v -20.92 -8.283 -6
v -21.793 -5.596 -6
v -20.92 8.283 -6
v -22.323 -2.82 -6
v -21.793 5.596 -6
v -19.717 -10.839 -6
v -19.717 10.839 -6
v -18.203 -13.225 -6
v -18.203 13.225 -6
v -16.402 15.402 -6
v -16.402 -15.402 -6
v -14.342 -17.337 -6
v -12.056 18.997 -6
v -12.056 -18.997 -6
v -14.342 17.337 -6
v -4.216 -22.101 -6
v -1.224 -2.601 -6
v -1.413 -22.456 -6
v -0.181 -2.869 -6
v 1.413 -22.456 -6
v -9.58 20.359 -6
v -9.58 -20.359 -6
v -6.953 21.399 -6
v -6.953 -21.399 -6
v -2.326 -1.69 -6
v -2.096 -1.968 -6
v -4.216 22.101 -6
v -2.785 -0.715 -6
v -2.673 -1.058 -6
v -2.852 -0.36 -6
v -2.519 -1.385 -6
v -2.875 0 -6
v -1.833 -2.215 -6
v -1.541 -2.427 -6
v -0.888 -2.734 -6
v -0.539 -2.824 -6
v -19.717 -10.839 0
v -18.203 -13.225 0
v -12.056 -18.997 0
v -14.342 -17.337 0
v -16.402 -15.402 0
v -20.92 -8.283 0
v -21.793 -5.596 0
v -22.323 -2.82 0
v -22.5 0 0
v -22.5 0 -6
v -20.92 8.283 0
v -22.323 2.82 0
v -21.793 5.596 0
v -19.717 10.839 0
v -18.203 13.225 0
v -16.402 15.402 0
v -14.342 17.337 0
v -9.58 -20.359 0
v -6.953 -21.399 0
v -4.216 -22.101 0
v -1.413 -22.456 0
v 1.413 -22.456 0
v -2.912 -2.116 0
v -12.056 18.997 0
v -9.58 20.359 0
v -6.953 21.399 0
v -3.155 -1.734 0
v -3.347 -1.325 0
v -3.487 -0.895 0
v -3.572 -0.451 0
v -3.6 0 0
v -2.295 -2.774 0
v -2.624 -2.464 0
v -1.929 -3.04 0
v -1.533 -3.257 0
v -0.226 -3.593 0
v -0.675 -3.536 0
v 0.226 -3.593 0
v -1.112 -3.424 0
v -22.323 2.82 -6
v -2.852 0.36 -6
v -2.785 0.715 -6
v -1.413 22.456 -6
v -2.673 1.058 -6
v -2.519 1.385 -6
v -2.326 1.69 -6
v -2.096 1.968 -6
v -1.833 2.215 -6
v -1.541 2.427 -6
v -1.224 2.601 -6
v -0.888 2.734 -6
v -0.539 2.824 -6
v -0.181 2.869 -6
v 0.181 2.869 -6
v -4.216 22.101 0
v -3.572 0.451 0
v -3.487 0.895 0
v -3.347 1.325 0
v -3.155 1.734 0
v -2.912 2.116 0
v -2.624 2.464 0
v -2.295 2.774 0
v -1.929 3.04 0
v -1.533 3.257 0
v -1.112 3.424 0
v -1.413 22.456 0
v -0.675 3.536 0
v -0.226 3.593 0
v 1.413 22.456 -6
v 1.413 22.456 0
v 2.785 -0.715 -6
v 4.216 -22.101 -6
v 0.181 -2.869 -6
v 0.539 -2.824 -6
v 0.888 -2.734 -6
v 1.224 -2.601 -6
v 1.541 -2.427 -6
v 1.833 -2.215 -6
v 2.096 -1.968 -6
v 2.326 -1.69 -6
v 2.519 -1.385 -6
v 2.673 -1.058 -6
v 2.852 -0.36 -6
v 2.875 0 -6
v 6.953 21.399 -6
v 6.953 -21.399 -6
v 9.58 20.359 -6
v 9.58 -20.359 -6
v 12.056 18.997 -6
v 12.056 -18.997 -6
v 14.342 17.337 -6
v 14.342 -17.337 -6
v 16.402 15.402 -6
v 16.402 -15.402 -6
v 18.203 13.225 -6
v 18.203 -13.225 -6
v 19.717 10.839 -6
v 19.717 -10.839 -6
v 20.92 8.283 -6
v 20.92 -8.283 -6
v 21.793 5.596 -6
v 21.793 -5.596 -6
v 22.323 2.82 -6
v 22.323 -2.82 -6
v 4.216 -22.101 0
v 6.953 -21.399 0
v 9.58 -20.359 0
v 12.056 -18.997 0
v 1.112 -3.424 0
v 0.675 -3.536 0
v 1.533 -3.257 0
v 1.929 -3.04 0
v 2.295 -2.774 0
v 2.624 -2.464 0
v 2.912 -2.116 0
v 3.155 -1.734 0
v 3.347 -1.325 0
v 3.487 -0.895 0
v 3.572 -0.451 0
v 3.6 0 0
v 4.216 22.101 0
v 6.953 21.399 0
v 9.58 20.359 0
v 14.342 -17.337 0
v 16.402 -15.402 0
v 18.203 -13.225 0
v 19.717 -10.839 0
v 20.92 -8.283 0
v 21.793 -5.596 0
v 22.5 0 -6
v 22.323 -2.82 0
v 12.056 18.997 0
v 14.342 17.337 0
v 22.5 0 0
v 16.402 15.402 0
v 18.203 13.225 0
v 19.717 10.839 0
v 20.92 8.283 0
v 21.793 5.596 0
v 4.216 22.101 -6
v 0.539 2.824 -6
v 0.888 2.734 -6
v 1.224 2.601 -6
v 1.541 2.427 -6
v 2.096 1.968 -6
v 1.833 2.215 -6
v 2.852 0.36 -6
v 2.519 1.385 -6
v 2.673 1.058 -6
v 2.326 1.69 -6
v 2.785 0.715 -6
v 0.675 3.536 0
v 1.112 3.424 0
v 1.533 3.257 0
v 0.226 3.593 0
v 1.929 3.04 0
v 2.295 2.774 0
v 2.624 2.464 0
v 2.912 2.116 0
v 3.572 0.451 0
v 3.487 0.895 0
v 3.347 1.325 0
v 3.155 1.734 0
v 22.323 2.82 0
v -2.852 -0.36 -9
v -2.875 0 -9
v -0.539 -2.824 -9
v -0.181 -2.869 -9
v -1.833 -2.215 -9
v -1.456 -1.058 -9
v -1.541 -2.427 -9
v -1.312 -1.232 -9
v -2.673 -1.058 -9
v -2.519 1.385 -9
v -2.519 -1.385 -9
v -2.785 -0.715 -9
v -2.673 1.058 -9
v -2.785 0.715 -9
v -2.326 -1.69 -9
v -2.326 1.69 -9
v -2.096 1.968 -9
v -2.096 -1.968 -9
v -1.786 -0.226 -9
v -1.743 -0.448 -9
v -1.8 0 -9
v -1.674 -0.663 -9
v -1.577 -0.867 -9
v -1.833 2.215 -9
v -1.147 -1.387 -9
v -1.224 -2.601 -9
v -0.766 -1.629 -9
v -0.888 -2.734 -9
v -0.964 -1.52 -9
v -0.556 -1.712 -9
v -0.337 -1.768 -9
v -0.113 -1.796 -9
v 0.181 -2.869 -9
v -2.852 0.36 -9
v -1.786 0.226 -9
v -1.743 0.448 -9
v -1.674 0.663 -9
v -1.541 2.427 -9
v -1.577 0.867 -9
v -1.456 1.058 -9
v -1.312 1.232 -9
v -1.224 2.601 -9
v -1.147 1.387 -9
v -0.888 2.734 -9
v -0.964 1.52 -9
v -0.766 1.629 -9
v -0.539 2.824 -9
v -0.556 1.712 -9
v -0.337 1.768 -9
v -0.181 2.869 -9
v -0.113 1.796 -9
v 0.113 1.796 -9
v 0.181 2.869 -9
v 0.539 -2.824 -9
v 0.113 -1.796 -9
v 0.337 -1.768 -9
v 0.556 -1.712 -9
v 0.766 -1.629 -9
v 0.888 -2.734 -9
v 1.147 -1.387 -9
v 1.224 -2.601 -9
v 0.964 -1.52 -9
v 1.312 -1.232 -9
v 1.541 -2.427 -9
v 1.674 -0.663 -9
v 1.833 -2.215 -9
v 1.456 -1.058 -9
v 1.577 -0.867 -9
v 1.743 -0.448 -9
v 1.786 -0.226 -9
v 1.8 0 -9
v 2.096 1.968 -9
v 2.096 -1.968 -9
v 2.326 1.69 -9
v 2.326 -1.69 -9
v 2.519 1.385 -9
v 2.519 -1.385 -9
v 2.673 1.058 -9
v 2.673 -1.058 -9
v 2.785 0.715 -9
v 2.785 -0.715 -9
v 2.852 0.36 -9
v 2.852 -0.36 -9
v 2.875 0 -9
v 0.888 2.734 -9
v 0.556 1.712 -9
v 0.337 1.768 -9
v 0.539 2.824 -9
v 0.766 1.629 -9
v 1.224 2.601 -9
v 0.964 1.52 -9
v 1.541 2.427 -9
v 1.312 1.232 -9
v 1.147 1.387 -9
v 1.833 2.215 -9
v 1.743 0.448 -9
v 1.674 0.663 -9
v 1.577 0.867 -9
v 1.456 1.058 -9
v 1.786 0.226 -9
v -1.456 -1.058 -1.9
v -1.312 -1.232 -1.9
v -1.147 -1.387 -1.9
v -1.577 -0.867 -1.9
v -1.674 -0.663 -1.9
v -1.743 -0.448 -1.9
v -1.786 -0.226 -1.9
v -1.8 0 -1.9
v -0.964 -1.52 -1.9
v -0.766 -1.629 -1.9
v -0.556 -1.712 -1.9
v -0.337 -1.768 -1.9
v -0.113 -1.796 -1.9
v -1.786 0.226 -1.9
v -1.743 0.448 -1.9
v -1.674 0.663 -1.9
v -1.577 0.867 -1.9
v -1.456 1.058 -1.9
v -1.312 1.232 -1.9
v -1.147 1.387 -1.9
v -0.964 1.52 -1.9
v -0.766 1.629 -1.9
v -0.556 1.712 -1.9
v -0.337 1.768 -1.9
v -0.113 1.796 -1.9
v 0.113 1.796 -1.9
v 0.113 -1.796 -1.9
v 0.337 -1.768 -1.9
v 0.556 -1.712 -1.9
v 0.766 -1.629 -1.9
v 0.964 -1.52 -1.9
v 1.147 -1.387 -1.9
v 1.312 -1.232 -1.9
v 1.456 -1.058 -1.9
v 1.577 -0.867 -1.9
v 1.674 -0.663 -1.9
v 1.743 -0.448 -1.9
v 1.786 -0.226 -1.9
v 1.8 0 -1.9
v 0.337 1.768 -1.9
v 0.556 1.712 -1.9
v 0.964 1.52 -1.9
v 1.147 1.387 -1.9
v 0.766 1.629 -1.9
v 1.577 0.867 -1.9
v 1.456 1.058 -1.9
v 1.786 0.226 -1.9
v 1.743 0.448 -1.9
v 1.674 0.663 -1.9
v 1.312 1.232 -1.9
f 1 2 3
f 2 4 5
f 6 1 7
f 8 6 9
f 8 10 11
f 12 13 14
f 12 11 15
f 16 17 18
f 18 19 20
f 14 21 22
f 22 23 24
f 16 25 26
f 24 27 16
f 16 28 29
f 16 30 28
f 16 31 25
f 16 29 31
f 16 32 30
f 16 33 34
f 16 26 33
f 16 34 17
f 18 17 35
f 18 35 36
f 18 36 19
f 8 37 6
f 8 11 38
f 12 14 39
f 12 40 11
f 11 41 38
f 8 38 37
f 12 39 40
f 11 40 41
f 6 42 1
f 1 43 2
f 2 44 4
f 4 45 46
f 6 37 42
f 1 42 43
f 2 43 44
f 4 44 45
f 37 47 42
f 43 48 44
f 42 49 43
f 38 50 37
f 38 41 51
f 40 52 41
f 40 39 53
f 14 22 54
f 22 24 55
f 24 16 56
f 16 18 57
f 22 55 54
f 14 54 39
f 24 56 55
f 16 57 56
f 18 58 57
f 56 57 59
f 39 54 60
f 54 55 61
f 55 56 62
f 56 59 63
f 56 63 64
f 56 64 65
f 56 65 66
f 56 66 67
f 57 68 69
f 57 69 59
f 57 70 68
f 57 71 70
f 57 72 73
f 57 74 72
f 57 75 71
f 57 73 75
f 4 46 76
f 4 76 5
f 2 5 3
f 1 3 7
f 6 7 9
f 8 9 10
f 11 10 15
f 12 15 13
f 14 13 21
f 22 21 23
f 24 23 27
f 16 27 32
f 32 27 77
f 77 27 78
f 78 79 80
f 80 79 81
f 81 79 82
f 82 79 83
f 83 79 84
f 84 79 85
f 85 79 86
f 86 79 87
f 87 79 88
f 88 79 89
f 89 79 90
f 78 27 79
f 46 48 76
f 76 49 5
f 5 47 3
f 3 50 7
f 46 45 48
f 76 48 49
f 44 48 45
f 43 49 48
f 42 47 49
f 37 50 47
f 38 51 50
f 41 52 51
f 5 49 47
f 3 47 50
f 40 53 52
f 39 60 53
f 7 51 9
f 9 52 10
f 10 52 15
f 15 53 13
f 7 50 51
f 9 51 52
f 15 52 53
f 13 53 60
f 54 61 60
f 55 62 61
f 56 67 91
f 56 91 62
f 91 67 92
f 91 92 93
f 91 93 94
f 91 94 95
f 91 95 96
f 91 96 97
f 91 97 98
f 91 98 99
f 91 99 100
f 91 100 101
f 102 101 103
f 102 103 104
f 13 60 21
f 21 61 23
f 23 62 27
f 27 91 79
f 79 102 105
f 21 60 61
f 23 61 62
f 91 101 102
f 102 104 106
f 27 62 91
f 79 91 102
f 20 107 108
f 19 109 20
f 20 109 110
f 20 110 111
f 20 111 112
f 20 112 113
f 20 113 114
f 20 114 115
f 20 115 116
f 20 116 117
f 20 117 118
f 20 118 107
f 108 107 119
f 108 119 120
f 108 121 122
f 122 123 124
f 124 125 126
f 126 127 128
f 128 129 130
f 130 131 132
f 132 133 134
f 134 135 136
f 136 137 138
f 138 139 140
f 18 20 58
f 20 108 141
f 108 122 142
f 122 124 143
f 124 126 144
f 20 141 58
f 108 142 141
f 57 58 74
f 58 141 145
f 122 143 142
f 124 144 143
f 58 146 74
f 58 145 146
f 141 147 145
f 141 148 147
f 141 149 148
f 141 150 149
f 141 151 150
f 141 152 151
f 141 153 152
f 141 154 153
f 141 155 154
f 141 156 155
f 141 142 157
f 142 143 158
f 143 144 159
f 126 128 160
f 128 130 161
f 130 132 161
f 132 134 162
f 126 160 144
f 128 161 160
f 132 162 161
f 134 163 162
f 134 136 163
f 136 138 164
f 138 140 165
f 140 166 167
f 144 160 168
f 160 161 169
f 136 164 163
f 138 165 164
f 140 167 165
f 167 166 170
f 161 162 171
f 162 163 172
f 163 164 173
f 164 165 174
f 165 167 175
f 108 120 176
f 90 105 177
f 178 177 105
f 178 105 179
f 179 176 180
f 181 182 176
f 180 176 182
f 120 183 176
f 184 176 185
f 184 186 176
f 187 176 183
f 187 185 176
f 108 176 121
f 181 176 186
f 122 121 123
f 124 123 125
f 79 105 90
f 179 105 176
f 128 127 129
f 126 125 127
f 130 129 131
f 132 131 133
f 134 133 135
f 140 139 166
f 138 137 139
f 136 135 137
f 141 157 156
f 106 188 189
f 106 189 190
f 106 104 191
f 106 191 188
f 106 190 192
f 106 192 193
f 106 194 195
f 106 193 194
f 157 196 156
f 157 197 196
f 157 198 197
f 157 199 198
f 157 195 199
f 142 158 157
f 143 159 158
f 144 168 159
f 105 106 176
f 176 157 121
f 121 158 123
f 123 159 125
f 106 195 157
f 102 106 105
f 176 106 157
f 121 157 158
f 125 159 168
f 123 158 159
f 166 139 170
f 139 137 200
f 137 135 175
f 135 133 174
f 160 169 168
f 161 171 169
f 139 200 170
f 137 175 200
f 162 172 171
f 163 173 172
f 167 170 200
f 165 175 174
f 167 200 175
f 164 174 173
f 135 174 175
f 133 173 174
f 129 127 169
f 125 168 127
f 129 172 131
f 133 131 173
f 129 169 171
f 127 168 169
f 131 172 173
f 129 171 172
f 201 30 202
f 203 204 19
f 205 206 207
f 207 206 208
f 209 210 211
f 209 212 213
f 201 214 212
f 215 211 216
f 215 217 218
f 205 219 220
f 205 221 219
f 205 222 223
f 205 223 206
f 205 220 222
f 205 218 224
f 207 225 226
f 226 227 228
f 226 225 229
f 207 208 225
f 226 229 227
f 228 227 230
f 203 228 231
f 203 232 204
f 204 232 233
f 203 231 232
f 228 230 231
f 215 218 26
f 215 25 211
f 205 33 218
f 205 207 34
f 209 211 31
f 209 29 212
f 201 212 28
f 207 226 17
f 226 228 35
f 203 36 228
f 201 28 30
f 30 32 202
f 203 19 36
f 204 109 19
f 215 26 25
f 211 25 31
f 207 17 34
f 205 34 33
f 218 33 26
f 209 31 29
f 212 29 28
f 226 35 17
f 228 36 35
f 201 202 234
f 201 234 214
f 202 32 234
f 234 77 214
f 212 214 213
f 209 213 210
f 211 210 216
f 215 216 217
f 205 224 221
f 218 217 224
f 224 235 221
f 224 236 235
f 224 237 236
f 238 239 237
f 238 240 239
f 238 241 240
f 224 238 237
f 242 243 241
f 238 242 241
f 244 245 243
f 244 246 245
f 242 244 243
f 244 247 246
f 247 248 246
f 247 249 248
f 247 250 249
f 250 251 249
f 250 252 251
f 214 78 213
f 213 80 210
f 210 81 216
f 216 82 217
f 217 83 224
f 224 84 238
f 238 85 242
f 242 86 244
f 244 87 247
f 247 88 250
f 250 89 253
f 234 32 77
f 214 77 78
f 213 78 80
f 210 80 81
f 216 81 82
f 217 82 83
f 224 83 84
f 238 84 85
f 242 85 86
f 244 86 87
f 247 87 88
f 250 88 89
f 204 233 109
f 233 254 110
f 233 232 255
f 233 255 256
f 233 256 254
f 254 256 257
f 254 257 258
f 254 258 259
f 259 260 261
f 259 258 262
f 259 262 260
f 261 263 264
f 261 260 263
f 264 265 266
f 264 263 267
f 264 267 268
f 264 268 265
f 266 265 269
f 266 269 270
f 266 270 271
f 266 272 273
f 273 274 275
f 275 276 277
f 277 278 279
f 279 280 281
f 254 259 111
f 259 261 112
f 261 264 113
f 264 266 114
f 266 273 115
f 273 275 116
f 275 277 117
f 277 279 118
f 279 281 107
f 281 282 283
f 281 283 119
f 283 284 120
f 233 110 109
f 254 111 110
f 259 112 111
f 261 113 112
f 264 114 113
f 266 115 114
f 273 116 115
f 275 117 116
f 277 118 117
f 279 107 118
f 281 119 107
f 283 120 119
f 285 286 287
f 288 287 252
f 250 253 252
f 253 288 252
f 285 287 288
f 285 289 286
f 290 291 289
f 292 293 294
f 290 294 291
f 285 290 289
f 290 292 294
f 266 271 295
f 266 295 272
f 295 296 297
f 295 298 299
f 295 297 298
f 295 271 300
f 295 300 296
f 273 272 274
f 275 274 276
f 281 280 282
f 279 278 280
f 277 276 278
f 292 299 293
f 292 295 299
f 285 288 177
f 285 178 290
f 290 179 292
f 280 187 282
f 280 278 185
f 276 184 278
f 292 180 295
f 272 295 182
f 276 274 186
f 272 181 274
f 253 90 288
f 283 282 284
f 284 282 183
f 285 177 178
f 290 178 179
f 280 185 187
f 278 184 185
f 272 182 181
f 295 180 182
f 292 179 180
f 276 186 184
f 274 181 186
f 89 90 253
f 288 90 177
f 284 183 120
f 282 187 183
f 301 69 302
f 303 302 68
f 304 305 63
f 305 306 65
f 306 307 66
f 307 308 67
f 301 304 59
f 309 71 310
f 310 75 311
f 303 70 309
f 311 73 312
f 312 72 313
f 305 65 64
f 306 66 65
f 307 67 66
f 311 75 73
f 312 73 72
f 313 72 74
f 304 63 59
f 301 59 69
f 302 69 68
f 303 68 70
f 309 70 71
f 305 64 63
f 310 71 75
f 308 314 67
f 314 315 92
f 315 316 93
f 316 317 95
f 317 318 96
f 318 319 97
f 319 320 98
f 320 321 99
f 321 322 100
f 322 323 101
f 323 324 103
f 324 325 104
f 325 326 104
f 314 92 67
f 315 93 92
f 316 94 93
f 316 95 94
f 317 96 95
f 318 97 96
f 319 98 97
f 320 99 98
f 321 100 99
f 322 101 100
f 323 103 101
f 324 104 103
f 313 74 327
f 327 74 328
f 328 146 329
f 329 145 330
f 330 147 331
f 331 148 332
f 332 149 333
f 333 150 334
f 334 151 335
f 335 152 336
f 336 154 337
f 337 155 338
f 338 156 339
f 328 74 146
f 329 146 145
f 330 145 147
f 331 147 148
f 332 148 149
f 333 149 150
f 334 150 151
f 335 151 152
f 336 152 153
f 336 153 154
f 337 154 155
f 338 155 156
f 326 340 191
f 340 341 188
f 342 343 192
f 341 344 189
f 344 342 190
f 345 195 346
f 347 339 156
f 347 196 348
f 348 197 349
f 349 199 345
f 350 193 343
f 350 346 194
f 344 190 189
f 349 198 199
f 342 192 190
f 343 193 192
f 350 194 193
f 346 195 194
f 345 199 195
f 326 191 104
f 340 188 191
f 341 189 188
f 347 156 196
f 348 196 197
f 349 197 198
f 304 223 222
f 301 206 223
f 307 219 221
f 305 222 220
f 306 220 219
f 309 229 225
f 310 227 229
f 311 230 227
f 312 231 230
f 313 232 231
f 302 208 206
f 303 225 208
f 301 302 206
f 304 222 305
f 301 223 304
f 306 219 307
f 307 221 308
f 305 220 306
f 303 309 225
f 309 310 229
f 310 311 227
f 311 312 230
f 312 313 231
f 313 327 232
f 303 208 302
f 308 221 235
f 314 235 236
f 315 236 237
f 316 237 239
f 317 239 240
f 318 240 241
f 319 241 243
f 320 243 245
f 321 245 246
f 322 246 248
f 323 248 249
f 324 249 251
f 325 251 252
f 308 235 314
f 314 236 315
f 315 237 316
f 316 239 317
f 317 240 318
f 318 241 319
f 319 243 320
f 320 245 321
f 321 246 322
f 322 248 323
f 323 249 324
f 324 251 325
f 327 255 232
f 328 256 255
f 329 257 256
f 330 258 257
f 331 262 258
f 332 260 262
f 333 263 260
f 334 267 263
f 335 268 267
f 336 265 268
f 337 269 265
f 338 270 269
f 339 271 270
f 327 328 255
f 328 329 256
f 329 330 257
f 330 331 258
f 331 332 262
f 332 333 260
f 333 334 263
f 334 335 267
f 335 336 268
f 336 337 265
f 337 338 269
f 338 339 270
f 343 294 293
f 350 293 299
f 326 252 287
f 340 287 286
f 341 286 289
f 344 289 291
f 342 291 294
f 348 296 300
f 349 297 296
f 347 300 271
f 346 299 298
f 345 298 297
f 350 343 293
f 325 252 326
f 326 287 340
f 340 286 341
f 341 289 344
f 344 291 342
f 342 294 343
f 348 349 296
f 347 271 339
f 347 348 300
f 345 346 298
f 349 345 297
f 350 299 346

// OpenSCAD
$fn = 50;


difference() {
	union() {
		translate(v = [0, 0, -6.0000000000]) {
			cylinder(h = 6, r = 22.5000000000);
		}
		#translate(v = [0, 0, -9.0000000000]) {
			cylinder(h = 9, r = 2.8750000000);
		}
	}
	union() {
		translate(v = [0, 0, 0]) {
			rotate(a = [0, 0, 0]) {
				difference() {
					union() {
						translate(v = [0, 0, -9.0000000000]) {
							cylinder(h = 9, r = 1.5000000000);
						}
						translate(v = [0, 0, -1.9000000000]) {
							cylinder(h = 1.9000000000, r1 = 1.8000000000, r2 = 3.6000000000);
						}
						translate(v = [0, 0, -9.0000000000]) {
							cylinder(h = 9, r = 1.8000000000);
						}
						translate(v = [0, 0, -9.0000000000]) {
							cylinder(h = 9, r = 1.5000000000);
						}
					}
					union();
				}
			}
		}
	}
}
